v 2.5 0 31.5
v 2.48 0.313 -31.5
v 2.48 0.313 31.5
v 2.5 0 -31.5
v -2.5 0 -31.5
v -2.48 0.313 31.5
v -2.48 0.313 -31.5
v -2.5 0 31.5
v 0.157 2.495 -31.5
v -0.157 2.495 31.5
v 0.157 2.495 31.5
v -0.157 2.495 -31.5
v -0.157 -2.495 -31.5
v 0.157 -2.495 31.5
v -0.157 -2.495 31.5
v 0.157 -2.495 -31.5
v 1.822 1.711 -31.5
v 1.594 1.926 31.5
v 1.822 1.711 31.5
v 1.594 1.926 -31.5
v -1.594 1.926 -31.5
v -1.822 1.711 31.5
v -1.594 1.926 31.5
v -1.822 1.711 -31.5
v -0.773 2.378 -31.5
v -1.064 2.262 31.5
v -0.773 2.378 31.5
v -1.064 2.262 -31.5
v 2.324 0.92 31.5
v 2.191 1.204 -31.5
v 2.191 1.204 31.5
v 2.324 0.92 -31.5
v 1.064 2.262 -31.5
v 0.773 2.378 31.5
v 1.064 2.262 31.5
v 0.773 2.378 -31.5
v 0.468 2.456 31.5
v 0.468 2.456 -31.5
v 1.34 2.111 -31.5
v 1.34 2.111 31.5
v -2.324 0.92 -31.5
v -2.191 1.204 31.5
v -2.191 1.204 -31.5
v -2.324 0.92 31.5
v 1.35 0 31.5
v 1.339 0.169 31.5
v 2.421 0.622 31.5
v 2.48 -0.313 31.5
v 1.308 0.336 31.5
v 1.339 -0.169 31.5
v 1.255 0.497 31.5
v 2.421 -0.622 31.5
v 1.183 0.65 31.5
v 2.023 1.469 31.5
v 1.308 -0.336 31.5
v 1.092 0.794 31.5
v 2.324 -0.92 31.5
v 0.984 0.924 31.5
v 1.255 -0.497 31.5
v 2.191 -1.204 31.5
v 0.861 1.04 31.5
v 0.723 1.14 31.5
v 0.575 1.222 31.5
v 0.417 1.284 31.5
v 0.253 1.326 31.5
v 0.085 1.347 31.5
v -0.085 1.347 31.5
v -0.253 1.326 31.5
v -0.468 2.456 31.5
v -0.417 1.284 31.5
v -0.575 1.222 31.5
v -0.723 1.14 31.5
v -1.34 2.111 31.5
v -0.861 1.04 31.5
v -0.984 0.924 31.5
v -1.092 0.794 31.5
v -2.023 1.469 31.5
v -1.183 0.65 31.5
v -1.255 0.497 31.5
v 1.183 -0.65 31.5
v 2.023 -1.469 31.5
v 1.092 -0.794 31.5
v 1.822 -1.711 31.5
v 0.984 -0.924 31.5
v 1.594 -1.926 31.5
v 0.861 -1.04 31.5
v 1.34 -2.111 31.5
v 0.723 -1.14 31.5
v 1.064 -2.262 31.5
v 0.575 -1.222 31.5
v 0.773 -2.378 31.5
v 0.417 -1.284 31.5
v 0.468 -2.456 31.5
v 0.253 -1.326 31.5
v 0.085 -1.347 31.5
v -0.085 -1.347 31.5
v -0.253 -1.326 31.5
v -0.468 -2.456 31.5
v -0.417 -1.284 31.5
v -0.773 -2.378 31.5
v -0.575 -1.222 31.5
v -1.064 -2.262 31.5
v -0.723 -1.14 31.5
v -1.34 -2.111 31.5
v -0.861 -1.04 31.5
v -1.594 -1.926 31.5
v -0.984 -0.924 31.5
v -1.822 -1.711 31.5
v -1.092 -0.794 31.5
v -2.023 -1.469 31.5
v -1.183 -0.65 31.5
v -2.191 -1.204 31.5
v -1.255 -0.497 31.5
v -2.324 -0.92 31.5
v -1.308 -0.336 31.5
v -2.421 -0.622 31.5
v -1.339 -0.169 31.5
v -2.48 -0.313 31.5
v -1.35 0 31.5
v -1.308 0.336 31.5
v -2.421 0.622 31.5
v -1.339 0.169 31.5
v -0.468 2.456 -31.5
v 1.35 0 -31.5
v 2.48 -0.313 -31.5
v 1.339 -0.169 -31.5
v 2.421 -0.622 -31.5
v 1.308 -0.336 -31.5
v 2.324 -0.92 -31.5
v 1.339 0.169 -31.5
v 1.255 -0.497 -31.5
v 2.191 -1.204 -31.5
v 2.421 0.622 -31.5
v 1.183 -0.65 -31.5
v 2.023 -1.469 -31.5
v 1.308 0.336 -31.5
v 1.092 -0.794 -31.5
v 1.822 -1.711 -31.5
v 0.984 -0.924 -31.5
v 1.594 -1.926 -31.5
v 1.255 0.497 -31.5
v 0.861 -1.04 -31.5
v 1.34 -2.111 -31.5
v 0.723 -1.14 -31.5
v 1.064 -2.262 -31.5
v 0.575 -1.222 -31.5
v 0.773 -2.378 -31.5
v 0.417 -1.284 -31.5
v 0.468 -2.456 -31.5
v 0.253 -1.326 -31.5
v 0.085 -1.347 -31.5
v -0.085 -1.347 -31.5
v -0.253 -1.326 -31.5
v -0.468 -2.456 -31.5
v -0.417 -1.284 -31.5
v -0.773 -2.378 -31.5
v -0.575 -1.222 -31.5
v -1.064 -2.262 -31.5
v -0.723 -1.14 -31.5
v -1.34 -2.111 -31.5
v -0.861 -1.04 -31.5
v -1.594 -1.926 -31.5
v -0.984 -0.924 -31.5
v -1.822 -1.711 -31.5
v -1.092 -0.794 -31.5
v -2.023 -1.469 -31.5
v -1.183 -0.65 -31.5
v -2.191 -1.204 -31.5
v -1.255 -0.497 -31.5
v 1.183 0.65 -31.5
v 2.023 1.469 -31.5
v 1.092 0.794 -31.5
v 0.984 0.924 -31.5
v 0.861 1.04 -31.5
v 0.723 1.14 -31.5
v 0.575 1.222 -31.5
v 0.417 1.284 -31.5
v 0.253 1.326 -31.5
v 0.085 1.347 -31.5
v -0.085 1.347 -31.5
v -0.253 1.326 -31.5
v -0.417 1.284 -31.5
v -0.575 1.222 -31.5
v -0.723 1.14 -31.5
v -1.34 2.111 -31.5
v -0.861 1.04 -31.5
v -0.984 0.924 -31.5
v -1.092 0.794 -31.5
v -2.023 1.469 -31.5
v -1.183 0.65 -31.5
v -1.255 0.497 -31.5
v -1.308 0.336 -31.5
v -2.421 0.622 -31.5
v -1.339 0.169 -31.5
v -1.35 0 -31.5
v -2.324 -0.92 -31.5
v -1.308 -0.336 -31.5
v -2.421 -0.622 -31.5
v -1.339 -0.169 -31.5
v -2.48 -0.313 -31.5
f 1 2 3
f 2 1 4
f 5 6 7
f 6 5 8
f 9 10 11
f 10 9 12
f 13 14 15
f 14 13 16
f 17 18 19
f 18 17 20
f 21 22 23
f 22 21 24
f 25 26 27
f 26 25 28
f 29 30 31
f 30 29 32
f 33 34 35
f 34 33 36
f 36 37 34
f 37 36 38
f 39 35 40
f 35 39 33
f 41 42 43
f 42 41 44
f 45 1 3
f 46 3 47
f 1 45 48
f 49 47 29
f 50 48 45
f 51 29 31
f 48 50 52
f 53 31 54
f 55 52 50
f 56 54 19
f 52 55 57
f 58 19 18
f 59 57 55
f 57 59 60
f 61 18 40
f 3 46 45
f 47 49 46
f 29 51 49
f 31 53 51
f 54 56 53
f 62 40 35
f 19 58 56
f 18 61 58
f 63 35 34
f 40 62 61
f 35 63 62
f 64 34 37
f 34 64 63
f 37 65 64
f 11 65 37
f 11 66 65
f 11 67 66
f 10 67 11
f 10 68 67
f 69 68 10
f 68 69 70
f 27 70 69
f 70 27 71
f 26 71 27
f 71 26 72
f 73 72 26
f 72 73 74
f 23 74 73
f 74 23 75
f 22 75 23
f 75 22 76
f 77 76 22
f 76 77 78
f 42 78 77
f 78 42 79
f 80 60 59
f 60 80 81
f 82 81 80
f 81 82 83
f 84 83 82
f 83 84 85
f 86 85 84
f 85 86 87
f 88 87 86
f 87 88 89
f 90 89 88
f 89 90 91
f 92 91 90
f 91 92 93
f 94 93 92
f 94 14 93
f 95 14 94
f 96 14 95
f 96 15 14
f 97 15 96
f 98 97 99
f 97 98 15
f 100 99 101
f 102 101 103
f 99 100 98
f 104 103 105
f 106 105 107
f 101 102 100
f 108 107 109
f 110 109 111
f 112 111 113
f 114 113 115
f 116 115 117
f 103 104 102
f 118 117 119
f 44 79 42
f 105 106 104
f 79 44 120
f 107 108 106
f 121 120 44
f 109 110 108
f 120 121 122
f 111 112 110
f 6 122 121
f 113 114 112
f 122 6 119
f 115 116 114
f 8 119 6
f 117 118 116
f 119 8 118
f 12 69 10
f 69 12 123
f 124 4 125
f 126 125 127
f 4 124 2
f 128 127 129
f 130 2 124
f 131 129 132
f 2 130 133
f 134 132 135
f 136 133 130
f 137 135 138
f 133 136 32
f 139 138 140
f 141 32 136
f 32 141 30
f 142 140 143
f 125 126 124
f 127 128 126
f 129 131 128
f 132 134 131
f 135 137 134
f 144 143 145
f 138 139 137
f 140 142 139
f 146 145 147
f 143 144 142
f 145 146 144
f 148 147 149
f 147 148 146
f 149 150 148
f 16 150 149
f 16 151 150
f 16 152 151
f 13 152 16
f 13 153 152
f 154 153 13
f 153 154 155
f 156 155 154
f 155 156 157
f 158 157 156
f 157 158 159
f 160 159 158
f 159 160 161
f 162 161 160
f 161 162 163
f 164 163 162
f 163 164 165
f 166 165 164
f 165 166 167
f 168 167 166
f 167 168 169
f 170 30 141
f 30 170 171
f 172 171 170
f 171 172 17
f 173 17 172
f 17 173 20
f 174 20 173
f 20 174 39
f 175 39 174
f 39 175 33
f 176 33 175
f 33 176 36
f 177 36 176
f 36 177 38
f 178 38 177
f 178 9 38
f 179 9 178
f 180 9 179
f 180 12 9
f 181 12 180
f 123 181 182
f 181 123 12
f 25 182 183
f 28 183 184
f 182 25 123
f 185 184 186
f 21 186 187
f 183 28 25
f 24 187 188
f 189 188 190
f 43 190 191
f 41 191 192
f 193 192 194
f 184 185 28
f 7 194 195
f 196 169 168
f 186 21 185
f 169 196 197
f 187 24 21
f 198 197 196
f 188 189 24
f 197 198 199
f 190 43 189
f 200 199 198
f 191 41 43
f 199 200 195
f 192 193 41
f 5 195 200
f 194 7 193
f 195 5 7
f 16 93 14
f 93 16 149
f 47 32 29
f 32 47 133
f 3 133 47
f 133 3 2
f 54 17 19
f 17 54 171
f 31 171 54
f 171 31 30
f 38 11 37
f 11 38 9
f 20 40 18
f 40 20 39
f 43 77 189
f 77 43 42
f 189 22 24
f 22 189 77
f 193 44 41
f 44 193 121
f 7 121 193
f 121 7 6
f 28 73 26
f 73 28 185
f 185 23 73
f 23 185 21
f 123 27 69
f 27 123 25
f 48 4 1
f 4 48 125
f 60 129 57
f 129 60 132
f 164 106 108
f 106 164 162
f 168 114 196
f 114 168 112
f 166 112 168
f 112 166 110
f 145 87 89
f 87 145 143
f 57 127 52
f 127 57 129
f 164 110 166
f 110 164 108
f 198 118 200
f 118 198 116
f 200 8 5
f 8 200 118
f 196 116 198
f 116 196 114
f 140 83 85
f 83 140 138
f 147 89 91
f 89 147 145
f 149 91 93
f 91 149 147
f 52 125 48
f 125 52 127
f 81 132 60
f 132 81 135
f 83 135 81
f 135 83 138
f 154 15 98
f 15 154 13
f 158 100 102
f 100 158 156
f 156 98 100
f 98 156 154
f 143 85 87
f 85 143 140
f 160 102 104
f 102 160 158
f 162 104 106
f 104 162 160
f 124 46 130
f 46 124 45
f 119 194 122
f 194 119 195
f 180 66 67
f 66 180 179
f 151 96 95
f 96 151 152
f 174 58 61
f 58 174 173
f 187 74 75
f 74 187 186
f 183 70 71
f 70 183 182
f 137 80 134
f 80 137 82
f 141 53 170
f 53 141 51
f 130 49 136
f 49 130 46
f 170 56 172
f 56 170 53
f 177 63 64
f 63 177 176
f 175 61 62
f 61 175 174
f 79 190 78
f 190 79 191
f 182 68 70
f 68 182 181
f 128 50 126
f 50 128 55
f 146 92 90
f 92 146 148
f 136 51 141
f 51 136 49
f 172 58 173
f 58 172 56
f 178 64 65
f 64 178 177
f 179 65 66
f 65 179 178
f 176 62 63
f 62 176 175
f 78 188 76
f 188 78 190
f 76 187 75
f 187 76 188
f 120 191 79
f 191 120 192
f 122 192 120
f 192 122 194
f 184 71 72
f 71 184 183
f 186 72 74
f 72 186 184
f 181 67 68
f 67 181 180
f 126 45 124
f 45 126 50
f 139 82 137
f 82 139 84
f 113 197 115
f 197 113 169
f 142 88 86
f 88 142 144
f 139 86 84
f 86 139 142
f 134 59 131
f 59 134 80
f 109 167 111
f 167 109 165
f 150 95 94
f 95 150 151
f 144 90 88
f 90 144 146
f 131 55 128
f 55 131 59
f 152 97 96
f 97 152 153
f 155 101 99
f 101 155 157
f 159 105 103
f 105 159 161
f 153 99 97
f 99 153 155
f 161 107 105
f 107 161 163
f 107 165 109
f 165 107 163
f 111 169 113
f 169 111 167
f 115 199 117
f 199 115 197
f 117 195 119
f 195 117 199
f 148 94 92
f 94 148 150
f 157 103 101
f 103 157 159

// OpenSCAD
$fn = 50;


difference() {
	union() {
		translate(v = [0, 0, -31.5000000000]) {
			cylinder(h = 63, r = 2.5000000000);
		}
	}
	union() {
		translate(v = [0, 0, -100.0000000000]) {
			cylinder(h = 200, r = 1.3500000000);
		}
	}
}
